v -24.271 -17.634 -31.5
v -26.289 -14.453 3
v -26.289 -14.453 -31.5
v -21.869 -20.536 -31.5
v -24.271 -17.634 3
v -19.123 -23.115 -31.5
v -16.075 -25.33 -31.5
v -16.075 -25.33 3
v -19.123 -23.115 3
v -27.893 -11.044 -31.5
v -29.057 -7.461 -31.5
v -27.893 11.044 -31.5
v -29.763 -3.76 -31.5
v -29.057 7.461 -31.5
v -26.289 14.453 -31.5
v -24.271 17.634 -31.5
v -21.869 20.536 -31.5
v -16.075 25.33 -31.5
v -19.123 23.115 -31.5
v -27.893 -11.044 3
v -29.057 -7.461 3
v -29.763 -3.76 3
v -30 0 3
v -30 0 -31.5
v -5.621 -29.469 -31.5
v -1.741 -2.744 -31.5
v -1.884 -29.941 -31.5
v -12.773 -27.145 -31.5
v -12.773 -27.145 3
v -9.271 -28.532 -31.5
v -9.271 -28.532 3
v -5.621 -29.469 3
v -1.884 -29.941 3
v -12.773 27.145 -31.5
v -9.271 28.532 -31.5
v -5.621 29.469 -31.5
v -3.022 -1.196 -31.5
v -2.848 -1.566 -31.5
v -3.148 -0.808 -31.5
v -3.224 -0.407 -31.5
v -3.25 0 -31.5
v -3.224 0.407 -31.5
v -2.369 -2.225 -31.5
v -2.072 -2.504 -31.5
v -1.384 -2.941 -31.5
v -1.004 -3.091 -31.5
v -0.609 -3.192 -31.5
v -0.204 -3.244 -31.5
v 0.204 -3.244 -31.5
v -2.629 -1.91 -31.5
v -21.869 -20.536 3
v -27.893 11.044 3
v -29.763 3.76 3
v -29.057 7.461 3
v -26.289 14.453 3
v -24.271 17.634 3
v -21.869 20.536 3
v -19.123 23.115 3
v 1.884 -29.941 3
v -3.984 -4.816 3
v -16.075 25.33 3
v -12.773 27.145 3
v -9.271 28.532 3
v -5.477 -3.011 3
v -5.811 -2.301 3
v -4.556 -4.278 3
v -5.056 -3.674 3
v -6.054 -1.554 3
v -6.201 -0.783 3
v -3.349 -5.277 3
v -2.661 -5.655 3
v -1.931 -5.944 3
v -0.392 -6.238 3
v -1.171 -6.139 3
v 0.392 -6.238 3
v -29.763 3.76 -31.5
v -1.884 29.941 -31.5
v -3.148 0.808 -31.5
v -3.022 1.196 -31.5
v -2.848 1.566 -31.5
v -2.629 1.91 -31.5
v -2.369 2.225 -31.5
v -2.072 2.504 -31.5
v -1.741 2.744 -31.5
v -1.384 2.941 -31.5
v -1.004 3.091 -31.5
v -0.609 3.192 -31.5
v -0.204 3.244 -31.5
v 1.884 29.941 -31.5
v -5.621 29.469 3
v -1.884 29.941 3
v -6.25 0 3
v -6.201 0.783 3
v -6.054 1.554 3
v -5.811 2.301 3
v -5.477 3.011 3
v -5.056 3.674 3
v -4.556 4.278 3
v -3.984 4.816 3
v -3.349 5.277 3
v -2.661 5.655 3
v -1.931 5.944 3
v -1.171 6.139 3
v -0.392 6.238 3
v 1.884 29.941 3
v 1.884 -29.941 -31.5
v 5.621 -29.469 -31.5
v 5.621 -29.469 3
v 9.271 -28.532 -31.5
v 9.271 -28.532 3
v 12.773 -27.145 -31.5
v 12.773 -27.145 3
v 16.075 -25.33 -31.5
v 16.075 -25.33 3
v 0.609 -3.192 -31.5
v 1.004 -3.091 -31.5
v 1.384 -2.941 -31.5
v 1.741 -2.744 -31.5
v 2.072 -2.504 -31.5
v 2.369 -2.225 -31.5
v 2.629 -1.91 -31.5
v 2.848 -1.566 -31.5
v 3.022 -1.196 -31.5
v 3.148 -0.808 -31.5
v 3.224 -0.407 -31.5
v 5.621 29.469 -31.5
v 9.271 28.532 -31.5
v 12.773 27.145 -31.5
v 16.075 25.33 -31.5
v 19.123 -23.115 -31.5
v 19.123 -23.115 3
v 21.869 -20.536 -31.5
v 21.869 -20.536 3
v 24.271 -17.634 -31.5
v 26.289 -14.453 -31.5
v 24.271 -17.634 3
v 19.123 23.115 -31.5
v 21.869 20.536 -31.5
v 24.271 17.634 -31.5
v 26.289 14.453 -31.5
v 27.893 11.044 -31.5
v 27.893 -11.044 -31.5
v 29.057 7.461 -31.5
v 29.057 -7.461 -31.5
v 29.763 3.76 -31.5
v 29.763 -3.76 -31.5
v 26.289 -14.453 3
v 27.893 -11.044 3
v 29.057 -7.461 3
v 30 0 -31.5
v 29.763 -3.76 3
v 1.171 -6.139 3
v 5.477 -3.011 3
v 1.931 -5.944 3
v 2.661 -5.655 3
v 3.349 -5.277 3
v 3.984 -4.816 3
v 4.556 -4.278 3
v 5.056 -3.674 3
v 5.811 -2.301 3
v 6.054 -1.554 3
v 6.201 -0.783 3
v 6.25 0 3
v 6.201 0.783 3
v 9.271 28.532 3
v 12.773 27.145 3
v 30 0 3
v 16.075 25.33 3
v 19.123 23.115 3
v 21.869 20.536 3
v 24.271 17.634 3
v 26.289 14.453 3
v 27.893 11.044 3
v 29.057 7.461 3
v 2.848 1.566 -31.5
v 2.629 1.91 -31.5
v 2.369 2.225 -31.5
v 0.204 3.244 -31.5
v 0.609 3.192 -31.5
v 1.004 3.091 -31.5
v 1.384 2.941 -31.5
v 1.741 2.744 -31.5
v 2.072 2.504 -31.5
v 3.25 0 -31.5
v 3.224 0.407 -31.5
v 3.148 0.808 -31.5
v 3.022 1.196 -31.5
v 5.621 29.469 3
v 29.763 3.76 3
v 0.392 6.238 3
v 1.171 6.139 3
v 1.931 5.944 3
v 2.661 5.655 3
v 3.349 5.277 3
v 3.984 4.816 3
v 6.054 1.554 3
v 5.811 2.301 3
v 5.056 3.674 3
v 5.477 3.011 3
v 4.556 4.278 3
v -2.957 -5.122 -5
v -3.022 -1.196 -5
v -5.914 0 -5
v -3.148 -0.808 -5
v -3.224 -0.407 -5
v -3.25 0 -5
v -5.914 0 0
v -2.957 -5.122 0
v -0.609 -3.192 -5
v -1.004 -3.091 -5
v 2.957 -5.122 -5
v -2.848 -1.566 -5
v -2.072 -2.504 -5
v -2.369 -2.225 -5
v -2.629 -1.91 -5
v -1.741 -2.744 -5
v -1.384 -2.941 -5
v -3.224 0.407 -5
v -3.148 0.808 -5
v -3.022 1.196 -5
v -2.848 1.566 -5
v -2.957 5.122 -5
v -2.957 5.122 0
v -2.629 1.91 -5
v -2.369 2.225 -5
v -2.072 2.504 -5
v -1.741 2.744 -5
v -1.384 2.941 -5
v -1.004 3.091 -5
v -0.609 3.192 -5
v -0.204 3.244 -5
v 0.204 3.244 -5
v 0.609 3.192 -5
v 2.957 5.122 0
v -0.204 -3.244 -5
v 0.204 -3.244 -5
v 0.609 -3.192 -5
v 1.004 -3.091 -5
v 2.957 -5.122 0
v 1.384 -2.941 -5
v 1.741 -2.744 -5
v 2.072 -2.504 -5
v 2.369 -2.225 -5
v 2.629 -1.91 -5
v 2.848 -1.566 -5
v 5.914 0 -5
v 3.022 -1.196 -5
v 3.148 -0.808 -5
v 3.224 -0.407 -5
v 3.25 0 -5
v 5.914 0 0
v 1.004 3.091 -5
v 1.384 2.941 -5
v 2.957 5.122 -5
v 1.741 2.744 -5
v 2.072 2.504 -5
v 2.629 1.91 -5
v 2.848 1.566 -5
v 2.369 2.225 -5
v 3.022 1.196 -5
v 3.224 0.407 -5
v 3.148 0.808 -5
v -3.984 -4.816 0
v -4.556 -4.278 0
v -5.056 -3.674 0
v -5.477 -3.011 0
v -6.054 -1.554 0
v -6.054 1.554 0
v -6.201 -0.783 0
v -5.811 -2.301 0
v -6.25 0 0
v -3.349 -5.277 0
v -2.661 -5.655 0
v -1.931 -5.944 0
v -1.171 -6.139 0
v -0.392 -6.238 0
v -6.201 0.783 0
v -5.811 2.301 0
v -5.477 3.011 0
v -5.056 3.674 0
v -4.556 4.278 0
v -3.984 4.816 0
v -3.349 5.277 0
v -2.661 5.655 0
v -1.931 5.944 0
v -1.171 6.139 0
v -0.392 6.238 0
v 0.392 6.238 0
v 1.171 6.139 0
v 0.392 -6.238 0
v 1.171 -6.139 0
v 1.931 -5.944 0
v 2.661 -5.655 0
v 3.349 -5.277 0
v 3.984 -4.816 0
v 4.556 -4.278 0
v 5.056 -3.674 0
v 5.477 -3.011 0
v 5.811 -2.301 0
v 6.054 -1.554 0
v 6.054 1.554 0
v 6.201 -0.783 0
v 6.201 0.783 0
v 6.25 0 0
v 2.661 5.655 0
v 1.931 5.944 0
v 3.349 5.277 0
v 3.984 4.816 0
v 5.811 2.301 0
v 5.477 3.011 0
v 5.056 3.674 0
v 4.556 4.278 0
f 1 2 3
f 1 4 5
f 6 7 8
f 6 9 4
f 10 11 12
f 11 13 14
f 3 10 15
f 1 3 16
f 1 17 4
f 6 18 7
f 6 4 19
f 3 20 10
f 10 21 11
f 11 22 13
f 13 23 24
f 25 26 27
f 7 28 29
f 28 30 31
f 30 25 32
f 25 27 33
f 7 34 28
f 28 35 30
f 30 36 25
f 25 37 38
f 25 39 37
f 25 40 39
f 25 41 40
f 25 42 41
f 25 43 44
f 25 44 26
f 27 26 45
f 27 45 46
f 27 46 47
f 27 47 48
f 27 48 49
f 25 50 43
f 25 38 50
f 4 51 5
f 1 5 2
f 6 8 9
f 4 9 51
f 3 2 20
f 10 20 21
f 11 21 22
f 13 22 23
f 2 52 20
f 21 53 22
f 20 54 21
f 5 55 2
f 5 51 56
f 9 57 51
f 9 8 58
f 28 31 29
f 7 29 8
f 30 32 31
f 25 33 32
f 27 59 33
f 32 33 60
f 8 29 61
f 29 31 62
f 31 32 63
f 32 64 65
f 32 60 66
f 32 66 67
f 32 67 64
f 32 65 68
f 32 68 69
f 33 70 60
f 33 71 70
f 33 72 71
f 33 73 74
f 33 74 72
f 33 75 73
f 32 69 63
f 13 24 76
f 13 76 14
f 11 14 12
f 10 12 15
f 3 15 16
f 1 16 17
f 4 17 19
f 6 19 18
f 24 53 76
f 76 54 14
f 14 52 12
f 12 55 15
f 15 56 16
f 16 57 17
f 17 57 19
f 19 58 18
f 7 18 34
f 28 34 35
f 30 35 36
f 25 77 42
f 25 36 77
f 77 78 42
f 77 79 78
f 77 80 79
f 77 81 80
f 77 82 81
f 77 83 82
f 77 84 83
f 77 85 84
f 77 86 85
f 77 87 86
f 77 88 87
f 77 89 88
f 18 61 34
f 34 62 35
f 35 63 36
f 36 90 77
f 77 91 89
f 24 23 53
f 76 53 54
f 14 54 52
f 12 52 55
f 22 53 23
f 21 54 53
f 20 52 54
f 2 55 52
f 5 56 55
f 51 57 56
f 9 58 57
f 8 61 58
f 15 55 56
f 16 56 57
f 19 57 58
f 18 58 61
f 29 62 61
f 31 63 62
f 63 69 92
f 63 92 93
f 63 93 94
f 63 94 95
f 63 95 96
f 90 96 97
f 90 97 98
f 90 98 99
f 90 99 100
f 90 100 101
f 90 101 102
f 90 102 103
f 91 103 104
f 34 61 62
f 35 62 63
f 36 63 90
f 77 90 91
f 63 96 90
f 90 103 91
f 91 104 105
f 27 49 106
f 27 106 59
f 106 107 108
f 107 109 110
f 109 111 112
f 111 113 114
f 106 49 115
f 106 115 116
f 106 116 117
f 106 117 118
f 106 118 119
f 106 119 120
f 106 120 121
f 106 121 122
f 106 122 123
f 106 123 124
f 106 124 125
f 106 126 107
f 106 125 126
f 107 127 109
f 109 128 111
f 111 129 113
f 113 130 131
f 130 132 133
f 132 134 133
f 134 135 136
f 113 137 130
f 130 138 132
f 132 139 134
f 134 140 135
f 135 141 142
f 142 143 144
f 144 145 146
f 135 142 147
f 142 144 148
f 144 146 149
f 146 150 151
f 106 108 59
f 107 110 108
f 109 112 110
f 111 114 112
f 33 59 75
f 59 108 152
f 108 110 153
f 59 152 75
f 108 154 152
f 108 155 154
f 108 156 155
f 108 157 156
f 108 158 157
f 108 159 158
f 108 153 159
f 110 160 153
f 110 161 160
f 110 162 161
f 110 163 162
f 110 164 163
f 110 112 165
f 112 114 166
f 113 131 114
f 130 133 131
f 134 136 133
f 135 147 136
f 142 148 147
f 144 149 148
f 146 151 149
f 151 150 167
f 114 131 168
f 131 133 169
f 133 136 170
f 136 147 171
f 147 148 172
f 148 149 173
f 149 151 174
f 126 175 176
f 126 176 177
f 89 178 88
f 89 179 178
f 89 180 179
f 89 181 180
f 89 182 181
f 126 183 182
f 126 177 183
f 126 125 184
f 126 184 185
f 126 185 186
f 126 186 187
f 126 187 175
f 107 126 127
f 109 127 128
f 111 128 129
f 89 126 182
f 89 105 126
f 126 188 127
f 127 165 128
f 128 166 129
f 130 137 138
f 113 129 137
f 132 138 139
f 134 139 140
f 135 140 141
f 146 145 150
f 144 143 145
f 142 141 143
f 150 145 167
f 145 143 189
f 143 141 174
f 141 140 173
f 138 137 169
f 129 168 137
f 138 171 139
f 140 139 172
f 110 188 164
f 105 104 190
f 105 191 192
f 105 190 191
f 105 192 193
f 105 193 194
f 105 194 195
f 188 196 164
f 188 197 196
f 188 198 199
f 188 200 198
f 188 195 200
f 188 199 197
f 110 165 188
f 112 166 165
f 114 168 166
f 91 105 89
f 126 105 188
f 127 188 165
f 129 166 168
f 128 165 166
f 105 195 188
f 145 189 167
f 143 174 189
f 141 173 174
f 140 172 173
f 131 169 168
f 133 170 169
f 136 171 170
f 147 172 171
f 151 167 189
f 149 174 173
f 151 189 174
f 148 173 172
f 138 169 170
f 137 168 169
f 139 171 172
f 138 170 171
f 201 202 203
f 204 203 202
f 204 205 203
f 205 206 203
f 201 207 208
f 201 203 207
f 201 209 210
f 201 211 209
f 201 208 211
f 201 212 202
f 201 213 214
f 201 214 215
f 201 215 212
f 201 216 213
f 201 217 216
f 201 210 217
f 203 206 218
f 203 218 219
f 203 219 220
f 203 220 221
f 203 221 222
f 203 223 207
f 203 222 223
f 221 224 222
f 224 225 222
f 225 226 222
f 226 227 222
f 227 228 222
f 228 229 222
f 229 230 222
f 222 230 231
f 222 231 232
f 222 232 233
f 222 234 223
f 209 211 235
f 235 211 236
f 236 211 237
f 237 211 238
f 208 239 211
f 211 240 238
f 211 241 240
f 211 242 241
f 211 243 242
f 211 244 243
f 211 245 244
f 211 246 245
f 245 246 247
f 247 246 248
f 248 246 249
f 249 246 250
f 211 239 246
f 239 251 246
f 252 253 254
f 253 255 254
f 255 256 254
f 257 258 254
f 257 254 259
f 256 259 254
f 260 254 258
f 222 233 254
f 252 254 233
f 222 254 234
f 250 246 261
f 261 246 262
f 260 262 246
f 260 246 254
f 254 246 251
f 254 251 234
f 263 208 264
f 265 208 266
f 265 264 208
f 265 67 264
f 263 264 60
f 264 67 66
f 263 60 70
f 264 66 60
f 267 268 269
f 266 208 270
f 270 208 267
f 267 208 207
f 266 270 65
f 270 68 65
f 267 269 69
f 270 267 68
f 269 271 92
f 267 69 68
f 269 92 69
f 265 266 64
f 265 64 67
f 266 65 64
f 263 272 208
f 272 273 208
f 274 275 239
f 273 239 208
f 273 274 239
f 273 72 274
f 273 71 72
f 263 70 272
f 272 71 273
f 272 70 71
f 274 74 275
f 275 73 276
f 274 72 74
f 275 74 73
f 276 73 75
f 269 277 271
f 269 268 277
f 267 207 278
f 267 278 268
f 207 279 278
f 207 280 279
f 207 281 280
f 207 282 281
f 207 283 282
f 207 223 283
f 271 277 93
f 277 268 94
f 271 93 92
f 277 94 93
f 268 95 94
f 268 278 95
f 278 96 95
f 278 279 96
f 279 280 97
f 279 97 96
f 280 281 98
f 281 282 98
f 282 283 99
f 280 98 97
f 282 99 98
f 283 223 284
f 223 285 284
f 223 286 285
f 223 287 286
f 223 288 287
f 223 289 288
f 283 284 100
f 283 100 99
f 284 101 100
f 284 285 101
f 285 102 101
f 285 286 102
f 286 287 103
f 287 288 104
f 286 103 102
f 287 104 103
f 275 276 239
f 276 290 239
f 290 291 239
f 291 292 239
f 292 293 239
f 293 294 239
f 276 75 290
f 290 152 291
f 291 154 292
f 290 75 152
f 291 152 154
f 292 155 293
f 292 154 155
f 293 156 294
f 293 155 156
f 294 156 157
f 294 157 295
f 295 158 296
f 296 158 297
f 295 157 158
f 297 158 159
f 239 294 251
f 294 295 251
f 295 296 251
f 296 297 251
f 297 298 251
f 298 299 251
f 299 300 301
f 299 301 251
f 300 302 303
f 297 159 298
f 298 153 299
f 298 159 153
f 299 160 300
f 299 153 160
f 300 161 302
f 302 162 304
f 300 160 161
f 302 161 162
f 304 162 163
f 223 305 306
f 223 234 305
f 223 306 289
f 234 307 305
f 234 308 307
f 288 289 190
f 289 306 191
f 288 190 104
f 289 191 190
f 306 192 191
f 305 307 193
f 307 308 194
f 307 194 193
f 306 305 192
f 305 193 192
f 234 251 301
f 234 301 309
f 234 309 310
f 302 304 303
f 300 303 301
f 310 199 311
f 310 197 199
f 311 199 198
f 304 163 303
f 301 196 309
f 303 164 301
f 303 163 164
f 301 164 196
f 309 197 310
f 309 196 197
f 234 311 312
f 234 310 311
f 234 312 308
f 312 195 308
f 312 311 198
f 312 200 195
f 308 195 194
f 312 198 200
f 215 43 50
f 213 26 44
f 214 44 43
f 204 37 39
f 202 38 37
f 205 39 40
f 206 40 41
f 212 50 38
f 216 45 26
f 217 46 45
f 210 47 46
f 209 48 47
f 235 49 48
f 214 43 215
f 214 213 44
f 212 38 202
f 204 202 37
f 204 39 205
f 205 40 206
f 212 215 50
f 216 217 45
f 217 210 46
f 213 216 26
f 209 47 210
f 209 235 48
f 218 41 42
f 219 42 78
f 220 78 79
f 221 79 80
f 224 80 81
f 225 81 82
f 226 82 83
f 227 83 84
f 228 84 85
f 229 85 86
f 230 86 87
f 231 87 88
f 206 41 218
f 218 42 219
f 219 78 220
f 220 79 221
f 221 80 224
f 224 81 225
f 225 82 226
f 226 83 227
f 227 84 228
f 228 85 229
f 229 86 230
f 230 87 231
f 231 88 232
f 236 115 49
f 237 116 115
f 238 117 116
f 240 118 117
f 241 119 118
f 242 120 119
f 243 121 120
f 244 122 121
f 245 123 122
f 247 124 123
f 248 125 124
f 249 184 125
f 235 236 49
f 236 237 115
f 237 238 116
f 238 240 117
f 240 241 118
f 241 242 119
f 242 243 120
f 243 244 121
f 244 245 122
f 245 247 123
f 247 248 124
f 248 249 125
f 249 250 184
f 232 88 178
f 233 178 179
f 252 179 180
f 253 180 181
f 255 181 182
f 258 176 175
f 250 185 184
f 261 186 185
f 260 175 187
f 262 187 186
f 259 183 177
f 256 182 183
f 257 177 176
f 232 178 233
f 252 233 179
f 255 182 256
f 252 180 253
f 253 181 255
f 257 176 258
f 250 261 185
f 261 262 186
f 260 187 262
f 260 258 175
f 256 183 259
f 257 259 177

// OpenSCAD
$fn = 50;

difference() {
	union() {
		translate(v = [0, 0, -31.5]) {
			cylinder(h = 34.5, r = 30.0);
		}
		#translate(v = [0, 0, -33.0]) {
			cylinder(h = 33, r = 2.875);
		}
	}
	union() {
		translate(v = [0, 0, 0]) {
			rotate(a = [0, 0, 0]) {
				difference() {
					union() {
						translate(v = [0, 0, -5]) {
							linear_extrude(height = 5) {
								polygon(points = [[5.914249999999999, 0.0], [2.957125, 5.1218907443321156], [-2.9571249999999982, 5.1218907443321156], [-5.914249999999999, 7.242867331857232e-16], [-2.9571250000000022, -5.121890744332115], [2.9571249999999956, -5.121890744332118]]);
							}
						}
					}
					union();
				}
			}
		}
		#cylinder(h = 3, r = 6.25);
		#translate(v = [0, 0, -100.0]) {
			cylinder(h = 200, r = 3.25);
		}
	}
}
